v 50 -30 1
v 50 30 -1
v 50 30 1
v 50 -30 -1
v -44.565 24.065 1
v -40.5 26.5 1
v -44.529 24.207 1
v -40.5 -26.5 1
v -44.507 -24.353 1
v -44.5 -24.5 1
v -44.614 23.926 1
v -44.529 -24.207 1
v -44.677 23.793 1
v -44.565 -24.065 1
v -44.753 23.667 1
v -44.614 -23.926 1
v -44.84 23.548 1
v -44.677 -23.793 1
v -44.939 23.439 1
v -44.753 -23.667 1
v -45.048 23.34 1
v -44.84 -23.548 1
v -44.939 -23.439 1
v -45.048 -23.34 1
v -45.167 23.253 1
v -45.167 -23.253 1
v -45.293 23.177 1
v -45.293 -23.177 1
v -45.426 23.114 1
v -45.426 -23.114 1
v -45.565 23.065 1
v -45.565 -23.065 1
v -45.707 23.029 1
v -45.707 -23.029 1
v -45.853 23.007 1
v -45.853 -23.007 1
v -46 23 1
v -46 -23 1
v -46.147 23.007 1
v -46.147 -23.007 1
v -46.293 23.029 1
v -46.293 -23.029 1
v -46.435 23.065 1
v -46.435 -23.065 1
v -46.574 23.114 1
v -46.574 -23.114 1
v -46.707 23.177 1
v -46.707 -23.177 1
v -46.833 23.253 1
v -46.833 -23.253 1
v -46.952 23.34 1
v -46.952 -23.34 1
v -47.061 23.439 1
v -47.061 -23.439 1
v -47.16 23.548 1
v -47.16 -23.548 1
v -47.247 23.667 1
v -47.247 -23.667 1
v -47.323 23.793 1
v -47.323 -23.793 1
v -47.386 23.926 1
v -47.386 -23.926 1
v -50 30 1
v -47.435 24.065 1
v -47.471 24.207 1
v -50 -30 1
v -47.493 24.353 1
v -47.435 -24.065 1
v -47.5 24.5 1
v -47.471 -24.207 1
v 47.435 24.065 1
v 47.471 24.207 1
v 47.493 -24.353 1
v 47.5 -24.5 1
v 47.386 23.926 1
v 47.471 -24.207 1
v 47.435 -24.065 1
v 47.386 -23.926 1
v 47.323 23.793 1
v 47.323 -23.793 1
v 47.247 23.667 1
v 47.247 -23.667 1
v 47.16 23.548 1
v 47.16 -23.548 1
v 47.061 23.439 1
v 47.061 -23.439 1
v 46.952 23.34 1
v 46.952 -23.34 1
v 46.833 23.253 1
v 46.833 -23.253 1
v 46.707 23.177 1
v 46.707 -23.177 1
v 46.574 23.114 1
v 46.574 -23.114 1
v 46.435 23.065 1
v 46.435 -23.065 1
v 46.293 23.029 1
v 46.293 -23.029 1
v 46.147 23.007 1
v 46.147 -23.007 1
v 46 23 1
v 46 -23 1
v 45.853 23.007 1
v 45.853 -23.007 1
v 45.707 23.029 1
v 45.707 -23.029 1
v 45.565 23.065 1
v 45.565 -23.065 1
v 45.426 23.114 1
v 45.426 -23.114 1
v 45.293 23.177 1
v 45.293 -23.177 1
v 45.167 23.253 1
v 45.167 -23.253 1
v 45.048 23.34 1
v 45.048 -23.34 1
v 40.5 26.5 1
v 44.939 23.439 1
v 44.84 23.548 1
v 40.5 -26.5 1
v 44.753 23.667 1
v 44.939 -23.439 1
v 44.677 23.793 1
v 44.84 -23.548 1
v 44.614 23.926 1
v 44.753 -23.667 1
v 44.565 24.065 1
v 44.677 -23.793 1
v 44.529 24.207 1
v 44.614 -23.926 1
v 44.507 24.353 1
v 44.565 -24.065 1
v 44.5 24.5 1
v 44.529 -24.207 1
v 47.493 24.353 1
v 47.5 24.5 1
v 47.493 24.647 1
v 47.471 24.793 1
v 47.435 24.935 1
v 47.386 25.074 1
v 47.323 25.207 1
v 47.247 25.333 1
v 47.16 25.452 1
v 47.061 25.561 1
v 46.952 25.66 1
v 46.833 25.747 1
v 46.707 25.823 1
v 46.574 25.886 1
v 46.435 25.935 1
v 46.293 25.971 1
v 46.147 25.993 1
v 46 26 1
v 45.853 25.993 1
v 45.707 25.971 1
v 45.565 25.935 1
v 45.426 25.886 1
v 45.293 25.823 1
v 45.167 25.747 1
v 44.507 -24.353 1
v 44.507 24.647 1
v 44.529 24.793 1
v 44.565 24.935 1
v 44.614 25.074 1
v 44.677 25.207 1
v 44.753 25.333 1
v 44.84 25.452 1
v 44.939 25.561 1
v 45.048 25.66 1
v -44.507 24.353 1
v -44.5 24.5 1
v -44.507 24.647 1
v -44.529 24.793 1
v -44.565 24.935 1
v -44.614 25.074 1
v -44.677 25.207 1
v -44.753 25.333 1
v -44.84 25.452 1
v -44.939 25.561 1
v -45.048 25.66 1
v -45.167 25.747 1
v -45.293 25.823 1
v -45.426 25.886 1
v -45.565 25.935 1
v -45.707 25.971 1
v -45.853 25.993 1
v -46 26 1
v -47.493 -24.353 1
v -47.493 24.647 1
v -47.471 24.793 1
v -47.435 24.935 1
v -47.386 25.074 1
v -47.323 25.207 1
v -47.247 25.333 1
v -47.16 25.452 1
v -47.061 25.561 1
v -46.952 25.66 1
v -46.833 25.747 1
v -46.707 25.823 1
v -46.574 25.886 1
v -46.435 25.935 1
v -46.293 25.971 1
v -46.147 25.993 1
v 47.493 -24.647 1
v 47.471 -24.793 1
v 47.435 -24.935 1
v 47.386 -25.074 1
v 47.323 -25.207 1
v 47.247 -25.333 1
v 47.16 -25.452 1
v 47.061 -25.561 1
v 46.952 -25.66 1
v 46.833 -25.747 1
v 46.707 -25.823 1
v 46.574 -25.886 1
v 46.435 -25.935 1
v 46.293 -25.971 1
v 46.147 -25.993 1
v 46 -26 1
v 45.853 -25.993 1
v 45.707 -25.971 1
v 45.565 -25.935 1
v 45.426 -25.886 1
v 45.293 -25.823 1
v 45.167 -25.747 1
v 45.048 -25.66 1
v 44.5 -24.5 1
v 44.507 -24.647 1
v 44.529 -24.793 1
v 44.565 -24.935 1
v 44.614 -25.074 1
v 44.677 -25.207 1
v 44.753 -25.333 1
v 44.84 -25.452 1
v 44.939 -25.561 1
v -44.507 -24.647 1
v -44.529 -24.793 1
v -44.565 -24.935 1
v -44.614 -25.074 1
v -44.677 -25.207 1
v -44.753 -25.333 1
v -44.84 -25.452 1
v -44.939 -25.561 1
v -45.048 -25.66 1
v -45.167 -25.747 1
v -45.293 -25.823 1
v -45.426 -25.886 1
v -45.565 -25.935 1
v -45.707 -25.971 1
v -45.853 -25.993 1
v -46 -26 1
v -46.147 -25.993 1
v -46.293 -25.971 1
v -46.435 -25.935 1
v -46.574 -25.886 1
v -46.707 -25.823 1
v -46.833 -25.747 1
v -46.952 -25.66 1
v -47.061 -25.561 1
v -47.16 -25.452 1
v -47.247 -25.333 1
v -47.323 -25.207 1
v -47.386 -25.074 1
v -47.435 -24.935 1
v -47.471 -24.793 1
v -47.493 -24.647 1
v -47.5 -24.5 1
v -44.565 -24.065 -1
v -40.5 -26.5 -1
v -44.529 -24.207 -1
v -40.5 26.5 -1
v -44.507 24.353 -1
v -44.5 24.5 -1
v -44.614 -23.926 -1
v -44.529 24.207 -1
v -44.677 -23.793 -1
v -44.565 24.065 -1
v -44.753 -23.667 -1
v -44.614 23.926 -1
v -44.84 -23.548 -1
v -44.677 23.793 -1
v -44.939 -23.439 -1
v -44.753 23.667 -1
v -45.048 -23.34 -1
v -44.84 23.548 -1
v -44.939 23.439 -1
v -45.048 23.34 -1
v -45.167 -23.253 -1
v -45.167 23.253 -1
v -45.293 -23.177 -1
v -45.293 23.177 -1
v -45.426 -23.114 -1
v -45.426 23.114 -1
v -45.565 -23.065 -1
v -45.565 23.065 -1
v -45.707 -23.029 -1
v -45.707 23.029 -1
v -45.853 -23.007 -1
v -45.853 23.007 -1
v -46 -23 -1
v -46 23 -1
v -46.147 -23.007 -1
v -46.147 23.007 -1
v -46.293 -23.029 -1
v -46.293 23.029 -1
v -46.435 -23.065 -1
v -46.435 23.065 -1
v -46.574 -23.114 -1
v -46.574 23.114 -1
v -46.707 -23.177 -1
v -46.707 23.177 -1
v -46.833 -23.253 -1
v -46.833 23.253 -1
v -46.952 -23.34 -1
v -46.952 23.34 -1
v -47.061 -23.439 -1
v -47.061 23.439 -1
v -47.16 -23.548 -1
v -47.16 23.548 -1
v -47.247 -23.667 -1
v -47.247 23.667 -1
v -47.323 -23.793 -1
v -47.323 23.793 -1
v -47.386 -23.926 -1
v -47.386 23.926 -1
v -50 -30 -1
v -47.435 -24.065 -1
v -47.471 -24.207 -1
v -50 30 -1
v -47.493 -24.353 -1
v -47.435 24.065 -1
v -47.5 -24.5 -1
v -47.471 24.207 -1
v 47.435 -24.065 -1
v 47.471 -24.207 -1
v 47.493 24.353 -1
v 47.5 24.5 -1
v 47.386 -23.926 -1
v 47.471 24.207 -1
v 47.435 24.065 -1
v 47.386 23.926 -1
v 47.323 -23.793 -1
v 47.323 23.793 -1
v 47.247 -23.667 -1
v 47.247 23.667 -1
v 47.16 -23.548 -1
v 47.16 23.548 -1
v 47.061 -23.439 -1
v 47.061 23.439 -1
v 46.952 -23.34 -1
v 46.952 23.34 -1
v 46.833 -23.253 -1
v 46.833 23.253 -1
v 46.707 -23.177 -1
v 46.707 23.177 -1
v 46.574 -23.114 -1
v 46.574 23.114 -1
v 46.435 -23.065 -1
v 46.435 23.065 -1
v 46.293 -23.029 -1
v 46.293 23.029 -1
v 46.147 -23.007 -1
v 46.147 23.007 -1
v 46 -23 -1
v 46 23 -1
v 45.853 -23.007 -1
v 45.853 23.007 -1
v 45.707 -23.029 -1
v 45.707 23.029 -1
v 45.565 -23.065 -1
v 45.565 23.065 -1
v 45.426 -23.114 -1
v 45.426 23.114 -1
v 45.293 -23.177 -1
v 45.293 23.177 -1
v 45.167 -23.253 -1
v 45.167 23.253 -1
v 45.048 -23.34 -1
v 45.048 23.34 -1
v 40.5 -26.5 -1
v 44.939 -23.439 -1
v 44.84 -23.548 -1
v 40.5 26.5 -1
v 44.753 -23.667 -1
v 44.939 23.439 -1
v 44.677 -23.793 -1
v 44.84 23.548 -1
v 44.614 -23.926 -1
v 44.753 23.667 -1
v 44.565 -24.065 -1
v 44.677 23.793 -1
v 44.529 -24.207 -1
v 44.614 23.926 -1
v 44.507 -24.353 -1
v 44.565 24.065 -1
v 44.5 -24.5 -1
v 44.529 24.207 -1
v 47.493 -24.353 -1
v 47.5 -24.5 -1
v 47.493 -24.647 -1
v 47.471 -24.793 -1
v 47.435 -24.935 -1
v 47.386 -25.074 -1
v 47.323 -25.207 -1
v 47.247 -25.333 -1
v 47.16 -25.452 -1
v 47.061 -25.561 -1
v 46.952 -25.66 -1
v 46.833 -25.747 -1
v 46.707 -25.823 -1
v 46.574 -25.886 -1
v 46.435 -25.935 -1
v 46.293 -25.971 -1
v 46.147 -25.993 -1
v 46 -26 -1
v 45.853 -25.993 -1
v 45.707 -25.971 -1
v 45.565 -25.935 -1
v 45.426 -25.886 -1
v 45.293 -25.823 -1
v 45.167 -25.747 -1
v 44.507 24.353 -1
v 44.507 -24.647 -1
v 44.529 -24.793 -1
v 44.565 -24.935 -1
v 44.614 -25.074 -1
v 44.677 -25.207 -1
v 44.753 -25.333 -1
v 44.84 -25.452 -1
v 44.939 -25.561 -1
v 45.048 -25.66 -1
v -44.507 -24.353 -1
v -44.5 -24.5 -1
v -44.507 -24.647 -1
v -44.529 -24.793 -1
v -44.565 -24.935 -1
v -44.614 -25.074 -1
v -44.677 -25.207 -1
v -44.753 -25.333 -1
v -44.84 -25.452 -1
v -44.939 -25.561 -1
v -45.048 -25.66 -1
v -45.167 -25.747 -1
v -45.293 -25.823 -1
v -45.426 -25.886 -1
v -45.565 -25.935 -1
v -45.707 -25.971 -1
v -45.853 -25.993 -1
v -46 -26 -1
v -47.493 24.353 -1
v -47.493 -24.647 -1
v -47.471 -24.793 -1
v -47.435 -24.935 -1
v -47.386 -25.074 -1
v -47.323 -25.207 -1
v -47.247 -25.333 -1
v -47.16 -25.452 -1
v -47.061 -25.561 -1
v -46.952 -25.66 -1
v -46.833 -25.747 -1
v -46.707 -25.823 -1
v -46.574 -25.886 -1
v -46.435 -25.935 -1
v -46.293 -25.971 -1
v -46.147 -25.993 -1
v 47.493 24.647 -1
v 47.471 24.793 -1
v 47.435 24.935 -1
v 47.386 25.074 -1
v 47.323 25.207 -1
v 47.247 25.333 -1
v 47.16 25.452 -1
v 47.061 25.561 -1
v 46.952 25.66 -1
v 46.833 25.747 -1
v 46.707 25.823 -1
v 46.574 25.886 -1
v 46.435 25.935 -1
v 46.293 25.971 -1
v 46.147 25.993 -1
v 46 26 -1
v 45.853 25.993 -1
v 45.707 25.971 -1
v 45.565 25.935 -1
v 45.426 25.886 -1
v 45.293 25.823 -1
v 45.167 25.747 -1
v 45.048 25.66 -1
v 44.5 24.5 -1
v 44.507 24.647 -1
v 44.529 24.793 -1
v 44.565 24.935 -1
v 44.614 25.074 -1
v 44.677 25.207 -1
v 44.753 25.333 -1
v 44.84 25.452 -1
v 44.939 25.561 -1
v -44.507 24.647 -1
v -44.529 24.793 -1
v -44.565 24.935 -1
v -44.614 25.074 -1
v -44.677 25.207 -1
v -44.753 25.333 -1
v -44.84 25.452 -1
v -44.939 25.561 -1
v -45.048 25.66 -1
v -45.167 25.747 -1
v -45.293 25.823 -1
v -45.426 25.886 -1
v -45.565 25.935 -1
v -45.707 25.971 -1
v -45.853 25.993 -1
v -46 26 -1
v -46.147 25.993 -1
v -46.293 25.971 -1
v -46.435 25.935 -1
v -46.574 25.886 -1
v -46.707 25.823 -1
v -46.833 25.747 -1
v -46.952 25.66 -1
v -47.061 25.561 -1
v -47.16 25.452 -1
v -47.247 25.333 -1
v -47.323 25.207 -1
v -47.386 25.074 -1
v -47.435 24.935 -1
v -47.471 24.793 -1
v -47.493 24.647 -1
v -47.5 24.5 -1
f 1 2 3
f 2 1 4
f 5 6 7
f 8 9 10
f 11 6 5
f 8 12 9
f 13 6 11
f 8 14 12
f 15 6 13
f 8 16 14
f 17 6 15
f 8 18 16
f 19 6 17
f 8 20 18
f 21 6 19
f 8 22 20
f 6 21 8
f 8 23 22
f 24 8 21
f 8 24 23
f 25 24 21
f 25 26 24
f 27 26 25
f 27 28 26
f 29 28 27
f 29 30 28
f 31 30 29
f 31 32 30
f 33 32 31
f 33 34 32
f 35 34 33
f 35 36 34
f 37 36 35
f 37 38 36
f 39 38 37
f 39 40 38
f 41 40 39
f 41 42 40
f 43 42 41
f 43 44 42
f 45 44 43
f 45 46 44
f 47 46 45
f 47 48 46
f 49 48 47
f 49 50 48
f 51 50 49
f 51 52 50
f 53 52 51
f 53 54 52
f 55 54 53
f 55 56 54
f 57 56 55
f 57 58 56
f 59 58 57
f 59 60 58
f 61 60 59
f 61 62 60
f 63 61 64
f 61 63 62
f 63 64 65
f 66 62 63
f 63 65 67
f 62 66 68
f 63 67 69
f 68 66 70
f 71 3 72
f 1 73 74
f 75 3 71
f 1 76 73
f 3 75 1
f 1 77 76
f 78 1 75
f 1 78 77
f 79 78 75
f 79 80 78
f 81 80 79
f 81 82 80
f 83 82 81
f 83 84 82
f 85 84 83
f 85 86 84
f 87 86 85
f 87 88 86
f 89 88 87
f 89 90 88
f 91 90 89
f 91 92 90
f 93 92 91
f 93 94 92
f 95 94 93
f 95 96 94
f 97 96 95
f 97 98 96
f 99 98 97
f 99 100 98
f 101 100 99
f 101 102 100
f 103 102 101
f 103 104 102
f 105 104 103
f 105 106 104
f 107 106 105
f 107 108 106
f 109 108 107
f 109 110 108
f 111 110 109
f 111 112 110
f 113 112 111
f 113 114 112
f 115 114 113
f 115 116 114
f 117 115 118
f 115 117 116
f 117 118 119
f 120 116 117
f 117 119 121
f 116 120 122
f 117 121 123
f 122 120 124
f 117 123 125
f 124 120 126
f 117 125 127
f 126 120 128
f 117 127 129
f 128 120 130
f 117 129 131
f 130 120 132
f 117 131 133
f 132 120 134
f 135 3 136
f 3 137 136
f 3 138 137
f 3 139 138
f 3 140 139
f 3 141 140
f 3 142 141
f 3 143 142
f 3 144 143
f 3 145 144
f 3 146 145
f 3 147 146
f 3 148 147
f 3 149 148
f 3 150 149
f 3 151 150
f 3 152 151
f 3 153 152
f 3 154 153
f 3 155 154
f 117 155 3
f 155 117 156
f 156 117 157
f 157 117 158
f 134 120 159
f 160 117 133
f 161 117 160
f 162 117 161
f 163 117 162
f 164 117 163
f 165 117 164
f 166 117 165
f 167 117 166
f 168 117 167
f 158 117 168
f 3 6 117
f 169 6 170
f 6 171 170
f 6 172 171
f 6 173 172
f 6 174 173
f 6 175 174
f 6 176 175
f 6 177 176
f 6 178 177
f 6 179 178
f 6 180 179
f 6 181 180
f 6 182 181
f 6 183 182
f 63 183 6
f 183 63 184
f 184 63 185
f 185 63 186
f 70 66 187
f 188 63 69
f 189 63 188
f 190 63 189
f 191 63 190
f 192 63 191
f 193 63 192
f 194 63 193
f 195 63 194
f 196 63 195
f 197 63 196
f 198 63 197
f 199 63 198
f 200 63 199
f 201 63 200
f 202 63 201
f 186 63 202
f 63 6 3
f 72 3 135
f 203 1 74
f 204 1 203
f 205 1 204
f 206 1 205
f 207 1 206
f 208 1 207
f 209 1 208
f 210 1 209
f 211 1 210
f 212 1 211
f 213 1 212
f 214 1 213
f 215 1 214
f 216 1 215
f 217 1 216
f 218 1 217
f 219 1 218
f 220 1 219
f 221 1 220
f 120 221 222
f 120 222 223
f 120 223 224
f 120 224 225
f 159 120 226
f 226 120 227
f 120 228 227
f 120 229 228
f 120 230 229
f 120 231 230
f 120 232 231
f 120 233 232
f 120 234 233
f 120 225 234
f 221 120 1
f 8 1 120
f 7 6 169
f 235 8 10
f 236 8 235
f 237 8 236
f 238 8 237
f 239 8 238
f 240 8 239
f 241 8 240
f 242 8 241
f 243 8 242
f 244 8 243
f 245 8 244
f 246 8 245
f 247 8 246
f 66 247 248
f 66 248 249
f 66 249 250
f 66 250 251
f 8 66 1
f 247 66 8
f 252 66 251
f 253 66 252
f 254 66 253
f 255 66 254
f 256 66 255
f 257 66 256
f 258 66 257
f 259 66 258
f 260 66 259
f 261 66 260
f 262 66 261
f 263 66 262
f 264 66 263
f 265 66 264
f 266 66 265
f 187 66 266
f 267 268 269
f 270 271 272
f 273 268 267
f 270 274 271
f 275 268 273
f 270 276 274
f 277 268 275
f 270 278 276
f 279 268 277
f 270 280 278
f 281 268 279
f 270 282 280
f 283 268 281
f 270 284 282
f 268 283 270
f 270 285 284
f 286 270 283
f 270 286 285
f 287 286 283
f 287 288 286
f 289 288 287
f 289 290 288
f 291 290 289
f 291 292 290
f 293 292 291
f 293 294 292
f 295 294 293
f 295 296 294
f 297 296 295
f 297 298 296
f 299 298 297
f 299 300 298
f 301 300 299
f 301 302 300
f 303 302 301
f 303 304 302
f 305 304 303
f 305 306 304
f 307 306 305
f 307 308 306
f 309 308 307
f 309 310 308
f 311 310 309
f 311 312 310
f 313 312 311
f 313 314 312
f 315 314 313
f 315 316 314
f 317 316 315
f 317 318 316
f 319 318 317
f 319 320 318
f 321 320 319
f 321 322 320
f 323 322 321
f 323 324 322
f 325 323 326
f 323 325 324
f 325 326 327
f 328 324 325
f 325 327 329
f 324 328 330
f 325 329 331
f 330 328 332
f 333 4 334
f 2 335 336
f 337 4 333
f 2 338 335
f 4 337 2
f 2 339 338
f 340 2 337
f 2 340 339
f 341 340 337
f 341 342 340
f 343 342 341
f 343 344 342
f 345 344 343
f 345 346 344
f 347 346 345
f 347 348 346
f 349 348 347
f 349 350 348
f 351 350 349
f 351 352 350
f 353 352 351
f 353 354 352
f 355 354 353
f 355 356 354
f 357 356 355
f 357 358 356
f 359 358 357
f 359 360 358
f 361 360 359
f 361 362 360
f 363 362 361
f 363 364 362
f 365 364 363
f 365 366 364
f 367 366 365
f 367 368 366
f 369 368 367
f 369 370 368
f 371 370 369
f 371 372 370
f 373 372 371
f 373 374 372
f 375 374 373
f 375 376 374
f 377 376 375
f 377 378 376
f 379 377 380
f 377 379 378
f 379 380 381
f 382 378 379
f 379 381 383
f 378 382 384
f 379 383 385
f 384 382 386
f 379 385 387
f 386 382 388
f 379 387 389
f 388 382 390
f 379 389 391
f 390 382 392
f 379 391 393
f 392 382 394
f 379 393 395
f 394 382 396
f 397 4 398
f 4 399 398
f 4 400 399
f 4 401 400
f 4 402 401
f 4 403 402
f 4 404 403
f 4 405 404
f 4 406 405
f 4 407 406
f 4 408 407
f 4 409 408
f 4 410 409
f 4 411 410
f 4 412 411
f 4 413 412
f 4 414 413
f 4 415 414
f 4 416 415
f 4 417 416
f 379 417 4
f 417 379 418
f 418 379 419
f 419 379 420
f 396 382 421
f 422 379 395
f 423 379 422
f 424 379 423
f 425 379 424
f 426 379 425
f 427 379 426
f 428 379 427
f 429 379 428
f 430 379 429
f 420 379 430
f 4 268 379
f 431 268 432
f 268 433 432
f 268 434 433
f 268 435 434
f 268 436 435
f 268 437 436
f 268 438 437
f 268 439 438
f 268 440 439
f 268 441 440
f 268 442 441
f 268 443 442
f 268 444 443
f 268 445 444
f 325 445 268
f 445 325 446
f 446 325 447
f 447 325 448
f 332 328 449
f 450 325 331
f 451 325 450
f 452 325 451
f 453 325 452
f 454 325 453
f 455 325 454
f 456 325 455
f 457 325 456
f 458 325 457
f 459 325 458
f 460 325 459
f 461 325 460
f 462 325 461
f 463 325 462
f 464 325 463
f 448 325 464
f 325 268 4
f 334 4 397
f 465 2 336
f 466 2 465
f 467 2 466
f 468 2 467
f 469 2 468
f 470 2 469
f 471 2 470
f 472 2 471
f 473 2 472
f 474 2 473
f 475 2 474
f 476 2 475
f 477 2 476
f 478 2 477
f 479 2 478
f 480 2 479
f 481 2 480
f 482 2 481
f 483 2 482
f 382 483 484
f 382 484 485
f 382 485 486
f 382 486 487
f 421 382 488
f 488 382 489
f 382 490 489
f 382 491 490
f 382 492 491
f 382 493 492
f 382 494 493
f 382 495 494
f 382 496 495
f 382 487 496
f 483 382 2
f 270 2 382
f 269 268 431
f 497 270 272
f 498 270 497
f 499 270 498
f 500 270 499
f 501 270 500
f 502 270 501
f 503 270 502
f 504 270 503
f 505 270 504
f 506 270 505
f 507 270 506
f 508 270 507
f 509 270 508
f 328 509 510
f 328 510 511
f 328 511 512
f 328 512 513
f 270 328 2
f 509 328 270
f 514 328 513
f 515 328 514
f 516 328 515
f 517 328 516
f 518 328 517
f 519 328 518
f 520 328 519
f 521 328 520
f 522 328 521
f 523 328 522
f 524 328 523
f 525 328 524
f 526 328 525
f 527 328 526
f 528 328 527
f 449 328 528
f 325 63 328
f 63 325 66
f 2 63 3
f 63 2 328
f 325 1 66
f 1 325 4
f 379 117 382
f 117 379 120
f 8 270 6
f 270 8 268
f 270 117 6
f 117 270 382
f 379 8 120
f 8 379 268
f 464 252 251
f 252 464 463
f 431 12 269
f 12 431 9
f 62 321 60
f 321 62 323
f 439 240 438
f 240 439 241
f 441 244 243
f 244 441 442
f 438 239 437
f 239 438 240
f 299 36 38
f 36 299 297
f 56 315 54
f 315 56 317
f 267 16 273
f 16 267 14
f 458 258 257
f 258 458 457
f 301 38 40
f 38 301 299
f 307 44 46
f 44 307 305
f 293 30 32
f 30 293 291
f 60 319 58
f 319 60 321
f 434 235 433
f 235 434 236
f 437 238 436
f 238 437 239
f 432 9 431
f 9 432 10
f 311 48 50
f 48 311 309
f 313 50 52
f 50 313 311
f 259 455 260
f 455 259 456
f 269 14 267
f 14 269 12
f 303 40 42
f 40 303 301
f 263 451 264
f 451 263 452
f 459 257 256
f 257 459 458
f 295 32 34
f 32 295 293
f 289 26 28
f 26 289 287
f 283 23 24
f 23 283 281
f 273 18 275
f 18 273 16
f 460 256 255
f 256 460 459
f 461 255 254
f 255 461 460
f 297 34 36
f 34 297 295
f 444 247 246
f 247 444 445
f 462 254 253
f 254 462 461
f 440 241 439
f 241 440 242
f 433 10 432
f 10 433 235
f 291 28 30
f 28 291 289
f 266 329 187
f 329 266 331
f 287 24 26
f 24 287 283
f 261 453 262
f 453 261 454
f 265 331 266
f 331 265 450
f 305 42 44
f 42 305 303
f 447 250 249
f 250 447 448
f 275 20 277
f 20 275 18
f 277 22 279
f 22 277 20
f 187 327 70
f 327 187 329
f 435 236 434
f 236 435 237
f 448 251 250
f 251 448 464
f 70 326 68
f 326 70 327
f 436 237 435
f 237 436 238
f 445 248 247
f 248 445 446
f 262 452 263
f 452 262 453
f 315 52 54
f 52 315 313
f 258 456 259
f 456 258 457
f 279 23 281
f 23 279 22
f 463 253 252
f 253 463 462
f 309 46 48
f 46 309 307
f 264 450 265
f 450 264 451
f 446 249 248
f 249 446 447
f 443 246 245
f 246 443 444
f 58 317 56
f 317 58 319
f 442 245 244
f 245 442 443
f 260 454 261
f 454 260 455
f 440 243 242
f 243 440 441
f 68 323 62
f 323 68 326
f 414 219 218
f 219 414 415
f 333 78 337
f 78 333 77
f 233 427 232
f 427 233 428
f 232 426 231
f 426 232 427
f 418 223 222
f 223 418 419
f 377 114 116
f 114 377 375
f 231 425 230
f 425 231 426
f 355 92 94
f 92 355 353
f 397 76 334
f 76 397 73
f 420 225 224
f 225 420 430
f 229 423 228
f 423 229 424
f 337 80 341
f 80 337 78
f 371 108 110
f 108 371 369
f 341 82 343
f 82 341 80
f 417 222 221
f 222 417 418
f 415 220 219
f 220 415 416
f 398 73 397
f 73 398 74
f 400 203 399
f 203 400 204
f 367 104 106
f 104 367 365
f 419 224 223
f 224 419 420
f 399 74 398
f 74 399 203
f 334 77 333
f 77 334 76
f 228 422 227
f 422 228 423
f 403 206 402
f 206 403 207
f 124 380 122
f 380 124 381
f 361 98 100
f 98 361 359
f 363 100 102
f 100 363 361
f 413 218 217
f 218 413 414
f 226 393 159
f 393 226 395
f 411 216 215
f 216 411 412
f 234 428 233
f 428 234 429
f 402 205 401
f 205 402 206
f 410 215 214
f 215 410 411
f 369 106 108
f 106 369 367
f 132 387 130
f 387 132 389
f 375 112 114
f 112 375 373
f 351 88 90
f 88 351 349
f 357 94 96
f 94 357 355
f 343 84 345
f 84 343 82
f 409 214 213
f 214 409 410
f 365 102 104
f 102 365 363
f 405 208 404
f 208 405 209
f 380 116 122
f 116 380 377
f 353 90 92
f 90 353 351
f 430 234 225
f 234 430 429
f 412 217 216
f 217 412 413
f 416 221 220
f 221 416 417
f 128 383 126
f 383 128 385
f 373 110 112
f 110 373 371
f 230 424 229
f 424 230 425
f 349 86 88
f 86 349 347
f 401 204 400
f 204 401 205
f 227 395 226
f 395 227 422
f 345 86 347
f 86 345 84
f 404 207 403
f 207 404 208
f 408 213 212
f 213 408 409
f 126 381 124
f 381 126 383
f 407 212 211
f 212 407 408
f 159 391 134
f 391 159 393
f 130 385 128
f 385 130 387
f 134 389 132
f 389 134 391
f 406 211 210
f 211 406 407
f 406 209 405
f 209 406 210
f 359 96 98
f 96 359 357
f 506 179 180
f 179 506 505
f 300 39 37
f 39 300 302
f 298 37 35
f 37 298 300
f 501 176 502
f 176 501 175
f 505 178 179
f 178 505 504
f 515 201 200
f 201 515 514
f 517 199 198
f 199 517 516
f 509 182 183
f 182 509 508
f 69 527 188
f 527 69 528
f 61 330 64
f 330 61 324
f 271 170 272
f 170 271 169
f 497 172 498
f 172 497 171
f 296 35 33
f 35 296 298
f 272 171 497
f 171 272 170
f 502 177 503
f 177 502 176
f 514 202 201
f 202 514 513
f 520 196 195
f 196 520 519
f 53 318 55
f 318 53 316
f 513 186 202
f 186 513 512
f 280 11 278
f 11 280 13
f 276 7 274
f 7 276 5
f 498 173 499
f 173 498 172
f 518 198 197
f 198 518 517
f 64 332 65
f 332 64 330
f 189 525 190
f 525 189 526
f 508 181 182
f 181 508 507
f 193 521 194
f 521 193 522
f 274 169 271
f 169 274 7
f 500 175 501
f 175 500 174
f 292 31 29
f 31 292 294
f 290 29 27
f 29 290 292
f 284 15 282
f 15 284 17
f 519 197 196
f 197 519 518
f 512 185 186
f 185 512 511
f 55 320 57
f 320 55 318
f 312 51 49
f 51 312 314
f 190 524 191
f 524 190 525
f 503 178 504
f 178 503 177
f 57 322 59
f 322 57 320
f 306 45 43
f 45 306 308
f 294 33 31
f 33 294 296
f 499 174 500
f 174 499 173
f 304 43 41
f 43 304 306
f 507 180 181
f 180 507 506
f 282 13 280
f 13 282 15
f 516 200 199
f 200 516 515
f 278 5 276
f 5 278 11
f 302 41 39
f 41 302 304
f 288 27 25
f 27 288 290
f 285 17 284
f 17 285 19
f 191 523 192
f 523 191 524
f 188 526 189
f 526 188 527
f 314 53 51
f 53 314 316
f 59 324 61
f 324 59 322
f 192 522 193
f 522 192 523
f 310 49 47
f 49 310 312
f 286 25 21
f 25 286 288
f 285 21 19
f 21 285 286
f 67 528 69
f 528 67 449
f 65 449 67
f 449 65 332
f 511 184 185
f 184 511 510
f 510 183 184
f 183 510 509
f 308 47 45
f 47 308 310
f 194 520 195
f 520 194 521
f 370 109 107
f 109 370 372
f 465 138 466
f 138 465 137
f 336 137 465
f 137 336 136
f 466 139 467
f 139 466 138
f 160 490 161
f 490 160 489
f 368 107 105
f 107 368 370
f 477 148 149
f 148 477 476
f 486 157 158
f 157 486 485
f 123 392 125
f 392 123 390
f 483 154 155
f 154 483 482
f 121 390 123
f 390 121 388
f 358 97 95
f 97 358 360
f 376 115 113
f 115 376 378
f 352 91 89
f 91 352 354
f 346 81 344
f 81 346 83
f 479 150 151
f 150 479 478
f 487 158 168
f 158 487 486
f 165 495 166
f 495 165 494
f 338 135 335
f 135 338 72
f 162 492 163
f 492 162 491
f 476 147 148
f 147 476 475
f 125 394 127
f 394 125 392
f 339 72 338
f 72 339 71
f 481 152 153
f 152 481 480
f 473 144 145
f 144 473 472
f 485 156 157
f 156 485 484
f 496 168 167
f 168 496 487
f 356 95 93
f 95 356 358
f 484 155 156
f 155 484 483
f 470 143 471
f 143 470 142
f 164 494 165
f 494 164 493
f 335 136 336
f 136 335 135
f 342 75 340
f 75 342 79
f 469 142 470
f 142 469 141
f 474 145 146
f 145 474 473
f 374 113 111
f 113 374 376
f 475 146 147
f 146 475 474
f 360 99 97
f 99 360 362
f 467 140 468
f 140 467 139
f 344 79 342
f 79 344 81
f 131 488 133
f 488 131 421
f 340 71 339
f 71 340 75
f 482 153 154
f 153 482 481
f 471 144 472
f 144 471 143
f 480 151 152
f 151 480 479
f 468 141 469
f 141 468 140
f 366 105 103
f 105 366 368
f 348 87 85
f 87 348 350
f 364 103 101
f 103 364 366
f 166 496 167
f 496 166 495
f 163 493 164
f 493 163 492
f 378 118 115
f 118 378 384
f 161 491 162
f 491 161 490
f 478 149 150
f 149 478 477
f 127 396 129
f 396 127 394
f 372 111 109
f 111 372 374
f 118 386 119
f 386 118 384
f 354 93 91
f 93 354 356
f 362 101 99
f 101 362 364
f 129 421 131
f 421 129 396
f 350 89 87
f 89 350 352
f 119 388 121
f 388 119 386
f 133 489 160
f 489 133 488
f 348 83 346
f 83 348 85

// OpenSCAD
// Bezel for TFT touchscreen

$fn=64;

difference() {
  cube([100,60,2], center=true);
  cube([81,53,3.0], center=true);
  {
    translate([-46,-24.5,0]) {
      cylinder(h=3.0, r1=1.5,r2=1.5,center =   true);
    }
  }
    {
    translate([46,-24.5,0]) {
      cylinder(h=3.2, r1=1.5,r2=1.5,center =   true);
    }
  }
    {
    translate([-46,24.5,0]) {
      cylinder(h=3.2, r1=1.5,r2=1.5,center =   true);
    }
  }
    {
    translate([46,24.5,0]) {
      cylinder(h=3.2, r1=1.5,r2=1.5,center =   true);
    }
  }
}
